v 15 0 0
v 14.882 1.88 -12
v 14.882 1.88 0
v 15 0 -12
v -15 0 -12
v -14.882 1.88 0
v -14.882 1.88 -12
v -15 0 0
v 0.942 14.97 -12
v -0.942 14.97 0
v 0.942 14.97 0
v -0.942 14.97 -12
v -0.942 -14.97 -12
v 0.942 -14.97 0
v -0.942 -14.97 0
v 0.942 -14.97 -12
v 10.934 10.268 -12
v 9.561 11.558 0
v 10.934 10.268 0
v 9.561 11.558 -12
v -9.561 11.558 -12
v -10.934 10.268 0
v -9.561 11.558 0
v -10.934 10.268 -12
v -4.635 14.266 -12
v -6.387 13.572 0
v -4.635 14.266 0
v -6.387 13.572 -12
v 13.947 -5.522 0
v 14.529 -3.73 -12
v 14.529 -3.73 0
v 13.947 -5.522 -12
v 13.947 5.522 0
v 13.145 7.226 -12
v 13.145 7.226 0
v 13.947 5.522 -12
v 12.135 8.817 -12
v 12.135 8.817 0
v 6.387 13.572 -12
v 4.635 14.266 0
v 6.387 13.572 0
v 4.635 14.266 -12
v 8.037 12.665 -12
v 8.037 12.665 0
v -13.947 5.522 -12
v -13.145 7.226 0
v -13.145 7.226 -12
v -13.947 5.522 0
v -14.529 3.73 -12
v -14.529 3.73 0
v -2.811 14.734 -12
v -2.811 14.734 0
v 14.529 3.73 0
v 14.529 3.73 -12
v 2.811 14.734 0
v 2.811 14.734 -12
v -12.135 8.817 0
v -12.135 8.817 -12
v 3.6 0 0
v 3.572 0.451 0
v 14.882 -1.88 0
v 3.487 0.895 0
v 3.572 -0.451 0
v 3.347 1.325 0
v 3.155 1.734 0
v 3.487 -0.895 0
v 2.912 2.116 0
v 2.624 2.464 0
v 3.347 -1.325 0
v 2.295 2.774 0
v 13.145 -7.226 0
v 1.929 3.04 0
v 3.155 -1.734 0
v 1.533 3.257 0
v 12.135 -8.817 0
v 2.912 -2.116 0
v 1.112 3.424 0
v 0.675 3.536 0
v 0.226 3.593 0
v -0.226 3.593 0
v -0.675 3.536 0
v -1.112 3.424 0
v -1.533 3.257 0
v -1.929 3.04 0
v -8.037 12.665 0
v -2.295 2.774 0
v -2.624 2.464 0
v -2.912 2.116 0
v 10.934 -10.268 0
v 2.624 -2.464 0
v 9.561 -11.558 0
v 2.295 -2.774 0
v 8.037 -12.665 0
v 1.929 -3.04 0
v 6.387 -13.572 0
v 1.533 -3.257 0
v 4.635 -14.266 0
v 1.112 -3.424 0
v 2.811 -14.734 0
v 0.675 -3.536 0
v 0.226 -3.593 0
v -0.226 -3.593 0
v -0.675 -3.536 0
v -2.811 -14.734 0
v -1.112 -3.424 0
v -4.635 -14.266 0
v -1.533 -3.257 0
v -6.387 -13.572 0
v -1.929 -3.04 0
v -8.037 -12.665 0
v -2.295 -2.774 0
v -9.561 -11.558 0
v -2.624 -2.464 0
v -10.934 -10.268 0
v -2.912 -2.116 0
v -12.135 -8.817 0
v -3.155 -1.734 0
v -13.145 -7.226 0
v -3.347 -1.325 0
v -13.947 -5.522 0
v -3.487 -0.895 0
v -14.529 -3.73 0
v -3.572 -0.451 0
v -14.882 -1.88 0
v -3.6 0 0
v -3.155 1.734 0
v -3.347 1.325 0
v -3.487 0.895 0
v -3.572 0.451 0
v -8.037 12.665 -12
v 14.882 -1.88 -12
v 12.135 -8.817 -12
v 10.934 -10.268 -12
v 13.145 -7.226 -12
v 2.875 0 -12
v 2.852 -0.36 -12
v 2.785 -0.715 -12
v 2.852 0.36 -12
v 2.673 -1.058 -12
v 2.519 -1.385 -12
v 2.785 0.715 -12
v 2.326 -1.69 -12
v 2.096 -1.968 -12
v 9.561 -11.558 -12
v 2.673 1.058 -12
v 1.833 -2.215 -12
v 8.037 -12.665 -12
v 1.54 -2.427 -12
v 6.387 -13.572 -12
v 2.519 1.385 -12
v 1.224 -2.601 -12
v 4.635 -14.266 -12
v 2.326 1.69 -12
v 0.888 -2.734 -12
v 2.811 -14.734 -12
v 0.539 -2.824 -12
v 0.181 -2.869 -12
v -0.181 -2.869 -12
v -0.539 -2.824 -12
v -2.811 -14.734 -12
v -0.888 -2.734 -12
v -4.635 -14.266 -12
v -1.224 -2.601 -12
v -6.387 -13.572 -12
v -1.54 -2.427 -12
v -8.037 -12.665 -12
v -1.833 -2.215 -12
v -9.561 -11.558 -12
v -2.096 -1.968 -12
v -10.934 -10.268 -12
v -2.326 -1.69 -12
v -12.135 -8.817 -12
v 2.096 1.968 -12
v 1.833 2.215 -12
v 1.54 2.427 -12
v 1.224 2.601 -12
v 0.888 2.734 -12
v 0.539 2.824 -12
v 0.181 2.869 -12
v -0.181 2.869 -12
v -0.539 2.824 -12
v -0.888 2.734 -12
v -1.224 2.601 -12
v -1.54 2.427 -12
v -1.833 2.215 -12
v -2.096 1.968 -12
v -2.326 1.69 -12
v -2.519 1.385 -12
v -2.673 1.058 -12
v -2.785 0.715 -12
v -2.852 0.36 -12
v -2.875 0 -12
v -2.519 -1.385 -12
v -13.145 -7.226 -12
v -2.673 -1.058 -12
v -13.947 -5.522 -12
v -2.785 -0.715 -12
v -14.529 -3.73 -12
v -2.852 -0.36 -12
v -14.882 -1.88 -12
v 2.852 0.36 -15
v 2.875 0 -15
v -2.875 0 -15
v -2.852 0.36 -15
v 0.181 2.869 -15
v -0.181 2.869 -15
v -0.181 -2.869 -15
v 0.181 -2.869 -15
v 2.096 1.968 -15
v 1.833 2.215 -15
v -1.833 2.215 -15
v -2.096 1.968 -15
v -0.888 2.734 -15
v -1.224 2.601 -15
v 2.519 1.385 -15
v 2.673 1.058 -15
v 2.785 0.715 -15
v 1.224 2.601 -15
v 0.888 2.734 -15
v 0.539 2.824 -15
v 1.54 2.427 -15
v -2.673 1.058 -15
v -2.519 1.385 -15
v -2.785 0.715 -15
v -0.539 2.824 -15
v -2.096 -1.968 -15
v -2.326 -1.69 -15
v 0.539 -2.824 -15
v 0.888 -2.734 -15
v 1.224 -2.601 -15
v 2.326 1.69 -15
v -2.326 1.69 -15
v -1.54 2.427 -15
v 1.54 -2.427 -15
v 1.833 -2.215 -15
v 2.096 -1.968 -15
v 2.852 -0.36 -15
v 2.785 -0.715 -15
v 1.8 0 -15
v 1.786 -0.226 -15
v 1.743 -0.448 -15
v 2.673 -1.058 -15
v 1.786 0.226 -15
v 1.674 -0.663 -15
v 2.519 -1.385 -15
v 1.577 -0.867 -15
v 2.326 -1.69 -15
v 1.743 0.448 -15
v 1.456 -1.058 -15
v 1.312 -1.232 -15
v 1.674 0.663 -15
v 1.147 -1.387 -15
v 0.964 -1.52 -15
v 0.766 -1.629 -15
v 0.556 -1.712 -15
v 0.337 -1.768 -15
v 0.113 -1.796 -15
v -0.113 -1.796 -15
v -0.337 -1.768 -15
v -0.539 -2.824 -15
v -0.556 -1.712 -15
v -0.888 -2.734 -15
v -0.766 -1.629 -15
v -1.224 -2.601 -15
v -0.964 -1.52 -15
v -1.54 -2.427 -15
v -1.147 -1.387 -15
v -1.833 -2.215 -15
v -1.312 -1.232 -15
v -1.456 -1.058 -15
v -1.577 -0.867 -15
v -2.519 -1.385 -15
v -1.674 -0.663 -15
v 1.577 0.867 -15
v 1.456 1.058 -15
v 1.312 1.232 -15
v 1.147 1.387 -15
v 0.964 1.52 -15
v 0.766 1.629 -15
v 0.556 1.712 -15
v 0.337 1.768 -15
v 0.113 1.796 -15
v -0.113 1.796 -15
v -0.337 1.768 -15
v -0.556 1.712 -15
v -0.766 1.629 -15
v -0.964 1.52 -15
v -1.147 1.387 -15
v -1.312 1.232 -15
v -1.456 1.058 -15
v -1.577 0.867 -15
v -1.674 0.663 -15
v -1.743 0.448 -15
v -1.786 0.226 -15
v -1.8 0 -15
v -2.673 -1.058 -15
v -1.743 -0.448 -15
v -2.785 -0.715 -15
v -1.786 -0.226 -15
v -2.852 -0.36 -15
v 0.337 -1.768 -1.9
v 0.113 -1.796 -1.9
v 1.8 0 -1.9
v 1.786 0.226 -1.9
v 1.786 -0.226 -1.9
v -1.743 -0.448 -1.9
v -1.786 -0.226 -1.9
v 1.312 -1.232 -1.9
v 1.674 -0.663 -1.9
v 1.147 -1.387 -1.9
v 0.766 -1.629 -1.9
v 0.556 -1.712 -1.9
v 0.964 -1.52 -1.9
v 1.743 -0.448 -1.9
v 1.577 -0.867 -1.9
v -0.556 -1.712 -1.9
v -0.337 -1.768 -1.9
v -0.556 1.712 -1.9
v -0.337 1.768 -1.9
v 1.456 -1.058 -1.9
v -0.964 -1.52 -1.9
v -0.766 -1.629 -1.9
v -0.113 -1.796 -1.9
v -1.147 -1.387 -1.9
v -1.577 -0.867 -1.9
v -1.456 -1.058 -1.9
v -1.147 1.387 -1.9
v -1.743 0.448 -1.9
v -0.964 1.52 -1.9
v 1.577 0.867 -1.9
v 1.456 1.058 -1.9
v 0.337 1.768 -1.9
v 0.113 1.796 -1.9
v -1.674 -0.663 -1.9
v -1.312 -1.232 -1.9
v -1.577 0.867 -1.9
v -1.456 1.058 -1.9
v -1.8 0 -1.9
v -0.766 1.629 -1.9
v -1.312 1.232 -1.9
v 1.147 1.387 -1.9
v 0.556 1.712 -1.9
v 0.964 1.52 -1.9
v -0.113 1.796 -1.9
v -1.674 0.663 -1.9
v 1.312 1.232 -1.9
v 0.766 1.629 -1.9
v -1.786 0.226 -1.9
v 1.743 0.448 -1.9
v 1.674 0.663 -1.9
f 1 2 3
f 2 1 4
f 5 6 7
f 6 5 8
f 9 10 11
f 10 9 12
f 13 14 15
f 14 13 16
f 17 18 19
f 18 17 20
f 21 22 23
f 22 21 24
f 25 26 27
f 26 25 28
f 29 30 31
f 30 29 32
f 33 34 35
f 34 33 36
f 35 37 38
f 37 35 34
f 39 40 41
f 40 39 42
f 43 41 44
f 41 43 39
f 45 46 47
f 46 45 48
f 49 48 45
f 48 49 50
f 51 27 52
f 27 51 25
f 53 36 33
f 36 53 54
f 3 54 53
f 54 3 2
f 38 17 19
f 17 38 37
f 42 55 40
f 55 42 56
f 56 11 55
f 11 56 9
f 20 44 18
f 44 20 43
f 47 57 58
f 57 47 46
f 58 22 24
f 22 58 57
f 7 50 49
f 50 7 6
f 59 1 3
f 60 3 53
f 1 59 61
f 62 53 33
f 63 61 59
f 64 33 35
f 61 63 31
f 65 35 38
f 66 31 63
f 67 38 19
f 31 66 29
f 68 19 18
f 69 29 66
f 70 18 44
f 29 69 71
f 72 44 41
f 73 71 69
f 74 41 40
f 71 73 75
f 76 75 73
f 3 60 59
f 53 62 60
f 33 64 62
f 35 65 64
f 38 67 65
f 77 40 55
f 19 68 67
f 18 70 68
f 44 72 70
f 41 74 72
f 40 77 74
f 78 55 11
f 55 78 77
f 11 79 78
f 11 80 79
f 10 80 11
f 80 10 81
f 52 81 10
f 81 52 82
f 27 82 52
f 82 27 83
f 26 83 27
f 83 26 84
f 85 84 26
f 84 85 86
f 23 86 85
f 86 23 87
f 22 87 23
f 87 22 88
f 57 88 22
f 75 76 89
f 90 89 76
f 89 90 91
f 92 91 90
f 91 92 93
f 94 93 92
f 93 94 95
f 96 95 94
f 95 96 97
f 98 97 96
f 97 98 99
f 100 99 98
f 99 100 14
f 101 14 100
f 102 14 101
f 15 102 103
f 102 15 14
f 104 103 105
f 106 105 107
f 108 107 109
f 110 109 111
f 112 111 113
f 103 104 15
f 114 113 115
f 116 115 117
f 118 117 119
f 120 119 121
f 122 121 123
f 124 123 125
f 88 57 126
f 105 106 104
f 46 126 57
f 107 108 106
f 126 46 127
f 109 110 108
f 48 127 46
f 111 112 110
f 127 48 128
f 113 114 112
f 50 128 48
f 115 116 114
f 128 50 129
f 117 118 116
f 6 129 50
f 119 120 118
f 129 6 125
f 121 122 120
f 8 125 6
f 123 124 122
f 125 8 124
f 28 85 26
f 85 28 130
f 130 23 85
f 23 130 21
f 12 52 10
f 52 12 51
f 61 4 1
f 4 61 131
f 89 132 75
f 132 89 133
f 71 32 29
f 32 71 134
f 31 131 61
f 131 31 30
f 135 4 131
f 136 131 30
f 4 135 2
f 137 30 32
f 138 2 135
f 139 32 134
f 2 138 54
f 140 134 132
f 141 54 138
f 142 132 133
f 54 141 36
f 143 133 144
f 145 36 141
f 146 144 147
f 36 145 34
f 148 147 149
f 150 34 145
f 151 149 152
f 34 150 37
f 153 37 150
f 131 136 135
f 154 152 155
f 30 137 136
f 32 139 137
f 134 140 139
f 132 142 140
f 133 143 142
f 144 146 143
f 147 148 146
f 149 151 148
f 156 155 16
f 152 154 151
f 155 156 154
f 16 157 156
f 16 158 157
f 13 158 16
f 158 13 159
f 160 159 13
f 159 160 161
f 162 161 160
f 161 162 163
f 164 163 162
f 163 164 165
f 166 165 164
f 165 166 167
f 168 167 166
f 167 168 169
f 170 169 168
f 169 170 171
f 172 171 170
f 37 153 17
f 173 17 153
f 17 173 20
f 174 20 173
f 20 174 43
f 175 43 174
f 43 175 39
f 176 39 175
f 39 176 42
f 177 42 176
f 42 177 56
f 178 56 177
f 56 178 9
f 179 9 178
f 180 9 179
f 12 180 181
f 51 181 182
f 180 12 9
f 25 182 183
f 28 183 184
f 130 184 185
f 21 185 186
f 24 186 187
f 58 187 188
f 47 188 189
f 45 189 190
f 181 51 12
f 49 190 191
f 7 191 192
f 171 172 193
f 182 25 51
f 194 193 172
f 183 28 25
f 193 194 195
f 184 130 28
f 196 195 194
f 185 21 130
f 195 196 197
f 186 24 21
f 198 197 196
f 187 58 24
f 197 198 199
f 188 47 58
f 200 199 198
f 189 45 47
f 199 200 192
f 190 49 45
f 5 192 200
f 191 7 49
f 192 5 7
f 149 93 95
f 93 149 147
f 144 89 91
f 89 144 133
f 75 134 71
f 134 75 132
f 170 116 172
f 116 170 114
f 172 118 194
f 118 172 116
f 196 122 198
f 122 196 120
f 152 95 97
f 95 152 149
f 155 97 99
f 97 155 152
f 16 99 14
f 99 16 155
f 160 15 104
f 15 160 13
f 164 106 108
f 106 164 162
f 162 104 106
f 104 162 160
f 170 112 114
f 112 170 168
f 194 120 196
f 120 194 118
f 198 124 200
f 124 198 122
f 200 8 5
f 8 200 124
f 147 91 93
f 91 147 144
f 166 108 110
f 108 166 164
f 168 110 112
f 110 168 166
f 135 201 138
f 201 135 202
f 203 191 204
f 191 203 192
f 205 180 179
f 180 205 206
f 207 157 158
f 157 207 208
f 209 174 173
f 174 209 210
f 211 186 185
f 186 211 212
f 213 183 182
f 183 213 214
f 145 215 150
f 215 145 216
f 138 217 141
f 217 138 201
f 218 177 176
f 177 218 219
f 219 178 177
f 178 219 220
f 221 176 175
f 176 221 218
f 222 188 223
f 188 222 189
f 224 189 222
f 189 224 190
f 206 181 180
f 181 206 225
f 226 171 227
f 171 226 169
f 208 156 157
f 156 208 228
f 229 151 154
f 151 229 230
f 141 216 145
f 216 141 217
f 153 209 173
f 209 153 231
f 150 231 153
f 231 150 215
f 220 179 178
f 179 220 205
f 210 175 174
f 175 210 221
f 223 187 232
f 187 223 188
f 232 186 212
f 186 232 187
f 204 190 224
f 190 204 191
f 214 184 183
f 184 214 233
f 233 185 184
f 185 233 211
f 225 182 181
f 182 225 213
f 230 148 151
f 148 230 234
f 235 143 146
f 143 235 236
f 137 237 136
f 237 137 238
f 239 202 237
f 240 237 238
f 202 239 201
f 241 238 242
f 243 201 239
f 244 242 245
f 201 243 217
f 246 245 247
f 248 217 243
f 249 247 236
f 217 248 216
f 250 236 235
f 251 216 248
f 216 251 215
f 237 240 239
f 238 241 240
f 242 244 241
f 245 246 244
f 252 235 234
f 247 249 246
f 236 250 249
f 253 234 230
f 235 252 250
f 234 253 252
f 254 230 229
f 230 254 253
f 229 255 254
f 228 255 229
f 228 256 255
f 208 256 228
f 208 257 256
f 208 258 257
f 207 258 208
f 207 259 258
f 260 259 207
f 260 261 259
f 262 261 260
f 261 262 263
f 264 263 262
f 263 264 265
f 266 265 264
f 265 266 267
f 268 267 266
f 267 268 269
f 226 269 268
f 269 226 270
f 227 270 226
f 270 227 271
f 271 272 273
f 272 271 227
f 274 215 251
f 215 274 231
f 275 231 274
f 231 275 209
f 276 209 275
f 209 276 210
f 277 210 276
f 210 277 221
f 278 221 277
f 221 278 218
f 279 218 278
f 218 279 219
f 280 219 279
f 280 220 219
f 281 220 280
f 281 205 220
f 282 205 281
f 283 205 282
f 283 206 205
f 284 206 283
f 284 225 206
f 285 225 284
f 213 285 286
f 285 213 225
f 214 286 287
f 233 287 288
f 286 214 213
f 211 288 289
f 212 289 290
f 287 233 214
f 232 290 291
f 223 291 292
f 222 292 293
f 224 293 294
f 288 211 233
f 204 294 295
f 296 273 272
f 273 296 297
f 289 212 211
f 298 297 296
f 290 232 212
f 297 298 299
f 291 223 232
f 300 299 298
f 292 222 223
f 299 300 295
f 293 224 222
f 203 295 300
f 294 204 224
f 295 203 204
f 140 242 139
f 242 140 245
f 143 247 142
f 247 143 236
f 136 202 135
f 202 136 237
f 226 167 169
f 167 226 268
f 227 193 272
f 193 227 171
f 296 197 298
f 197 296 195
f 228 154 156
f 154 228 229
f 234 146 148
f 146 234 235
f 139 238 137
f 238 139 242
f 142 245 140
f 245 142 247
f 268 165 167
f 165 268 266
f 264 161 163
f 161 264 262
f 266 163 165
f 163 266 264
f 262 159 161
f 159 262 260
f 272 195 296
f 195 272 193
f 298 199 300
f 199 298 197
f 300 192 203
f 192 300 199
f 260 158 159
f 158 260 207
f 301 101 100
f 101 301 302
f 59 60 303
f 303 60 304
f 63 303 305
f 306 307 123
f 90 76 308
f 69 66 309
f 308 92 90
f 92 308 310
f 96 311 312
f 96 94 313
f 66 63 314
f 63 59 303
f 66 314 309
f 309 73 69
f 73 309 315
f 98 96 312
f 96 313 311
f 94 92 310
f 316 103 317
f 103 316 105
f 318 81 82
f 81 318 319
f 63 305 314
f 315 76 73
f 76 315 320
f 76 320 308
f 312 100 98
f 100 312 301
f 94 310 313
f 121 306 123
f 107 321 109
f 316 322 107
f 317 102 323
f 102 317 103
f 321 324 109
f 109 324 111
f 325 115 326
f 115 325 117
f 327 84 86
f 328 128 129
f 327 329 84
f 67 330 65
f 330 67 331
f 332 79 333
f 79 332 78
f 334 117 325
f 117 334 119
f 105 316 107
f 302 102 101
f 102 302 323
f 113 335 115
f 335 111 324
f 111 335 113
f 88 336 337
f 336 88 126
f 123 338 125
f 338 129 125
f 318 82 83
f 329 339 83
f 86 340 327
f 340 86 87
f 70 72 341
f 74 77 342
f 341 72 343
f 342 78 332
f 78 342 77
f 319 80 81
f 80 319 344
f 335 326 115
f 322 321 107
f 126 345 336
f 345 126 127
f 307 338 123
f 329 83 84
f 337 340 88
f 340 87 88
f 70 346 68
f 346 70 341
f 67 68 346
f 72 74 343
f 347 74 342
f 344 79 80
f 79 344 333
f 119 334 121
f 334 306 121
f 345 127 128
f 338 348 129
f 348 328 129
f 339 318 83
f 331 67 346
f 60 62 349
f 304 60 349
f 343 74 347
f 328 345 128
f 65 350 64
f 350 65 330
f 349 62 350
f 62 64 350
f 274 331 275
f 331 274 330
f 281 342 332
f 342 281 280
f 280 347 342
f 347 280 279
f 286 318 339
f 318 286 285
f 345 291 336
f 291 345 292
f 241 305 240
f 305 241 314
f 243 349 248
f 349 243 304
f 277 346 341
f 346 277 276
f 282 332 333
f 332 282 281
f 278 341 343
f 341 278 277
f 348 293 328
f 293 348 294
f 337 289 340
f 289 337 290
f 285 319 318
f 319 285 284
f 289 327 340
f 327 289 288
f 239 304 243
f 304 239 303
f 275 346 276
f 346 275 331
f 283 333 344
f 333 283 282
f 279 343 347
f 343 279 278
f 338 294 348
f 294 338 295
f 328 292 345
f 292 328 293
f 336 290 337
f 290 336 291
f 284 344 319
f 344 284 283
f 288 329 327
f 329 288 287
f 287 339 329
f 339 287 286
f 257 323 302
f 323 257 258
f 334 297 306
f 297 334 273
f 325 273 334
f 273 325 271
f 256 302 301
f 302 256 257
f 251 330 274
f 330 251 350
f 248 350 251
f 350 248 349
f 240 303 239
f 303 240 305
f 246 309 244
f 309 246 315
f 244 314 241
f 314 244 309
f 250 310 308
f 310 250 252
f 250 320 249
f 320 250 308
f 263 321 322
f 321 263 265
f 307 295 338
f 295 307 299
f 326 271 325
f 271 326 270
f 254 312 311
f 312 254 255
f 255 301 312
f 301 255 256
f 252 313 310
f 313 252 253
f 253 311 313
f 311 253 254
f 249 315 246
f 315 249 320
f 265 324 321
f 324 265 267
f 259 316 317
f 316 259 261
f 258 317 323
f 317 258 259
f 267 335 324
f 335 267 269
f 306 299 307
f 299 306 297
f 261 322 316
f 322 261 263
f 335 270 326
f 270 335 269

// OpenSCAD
$fn = 50;


difference() {
	union() {
		translate(v = [0, 0, -12.0000000000]) {
			cylinder(h = 12, r = 15.0000000000);
		}
		translate(v = [0, 0, -15.0000000000]) {
			cylinder(h = 15, r = 2.8750000000);
		}
	}
	union() {
		translate(v = [0, 0, 0]) {
			rotate(a = [0, 0, 0]) {
				difference() {
					union() {
						translate(v = [0, 0, -15.0000000000]) {
							cylinder(h = 15, r = 1.5000000000);
						}
						translate(v = [0, 0, -1.9000000000]) {
							cylinder(h = 1.9000000000, r1 = 1.8000000000, r2 = 3.6000000000);
						}
						translate(v = [0, 0, -15.0000000000]) {
							cylinder(h = 15, r = 1.8000000000);
						}
						translate(v = [0, 0, -15.0000000000]) {
							cylinder(h = 15, r = 1.5000000000);
						}
					}
					union();
				}
			}
		}
	}
}
